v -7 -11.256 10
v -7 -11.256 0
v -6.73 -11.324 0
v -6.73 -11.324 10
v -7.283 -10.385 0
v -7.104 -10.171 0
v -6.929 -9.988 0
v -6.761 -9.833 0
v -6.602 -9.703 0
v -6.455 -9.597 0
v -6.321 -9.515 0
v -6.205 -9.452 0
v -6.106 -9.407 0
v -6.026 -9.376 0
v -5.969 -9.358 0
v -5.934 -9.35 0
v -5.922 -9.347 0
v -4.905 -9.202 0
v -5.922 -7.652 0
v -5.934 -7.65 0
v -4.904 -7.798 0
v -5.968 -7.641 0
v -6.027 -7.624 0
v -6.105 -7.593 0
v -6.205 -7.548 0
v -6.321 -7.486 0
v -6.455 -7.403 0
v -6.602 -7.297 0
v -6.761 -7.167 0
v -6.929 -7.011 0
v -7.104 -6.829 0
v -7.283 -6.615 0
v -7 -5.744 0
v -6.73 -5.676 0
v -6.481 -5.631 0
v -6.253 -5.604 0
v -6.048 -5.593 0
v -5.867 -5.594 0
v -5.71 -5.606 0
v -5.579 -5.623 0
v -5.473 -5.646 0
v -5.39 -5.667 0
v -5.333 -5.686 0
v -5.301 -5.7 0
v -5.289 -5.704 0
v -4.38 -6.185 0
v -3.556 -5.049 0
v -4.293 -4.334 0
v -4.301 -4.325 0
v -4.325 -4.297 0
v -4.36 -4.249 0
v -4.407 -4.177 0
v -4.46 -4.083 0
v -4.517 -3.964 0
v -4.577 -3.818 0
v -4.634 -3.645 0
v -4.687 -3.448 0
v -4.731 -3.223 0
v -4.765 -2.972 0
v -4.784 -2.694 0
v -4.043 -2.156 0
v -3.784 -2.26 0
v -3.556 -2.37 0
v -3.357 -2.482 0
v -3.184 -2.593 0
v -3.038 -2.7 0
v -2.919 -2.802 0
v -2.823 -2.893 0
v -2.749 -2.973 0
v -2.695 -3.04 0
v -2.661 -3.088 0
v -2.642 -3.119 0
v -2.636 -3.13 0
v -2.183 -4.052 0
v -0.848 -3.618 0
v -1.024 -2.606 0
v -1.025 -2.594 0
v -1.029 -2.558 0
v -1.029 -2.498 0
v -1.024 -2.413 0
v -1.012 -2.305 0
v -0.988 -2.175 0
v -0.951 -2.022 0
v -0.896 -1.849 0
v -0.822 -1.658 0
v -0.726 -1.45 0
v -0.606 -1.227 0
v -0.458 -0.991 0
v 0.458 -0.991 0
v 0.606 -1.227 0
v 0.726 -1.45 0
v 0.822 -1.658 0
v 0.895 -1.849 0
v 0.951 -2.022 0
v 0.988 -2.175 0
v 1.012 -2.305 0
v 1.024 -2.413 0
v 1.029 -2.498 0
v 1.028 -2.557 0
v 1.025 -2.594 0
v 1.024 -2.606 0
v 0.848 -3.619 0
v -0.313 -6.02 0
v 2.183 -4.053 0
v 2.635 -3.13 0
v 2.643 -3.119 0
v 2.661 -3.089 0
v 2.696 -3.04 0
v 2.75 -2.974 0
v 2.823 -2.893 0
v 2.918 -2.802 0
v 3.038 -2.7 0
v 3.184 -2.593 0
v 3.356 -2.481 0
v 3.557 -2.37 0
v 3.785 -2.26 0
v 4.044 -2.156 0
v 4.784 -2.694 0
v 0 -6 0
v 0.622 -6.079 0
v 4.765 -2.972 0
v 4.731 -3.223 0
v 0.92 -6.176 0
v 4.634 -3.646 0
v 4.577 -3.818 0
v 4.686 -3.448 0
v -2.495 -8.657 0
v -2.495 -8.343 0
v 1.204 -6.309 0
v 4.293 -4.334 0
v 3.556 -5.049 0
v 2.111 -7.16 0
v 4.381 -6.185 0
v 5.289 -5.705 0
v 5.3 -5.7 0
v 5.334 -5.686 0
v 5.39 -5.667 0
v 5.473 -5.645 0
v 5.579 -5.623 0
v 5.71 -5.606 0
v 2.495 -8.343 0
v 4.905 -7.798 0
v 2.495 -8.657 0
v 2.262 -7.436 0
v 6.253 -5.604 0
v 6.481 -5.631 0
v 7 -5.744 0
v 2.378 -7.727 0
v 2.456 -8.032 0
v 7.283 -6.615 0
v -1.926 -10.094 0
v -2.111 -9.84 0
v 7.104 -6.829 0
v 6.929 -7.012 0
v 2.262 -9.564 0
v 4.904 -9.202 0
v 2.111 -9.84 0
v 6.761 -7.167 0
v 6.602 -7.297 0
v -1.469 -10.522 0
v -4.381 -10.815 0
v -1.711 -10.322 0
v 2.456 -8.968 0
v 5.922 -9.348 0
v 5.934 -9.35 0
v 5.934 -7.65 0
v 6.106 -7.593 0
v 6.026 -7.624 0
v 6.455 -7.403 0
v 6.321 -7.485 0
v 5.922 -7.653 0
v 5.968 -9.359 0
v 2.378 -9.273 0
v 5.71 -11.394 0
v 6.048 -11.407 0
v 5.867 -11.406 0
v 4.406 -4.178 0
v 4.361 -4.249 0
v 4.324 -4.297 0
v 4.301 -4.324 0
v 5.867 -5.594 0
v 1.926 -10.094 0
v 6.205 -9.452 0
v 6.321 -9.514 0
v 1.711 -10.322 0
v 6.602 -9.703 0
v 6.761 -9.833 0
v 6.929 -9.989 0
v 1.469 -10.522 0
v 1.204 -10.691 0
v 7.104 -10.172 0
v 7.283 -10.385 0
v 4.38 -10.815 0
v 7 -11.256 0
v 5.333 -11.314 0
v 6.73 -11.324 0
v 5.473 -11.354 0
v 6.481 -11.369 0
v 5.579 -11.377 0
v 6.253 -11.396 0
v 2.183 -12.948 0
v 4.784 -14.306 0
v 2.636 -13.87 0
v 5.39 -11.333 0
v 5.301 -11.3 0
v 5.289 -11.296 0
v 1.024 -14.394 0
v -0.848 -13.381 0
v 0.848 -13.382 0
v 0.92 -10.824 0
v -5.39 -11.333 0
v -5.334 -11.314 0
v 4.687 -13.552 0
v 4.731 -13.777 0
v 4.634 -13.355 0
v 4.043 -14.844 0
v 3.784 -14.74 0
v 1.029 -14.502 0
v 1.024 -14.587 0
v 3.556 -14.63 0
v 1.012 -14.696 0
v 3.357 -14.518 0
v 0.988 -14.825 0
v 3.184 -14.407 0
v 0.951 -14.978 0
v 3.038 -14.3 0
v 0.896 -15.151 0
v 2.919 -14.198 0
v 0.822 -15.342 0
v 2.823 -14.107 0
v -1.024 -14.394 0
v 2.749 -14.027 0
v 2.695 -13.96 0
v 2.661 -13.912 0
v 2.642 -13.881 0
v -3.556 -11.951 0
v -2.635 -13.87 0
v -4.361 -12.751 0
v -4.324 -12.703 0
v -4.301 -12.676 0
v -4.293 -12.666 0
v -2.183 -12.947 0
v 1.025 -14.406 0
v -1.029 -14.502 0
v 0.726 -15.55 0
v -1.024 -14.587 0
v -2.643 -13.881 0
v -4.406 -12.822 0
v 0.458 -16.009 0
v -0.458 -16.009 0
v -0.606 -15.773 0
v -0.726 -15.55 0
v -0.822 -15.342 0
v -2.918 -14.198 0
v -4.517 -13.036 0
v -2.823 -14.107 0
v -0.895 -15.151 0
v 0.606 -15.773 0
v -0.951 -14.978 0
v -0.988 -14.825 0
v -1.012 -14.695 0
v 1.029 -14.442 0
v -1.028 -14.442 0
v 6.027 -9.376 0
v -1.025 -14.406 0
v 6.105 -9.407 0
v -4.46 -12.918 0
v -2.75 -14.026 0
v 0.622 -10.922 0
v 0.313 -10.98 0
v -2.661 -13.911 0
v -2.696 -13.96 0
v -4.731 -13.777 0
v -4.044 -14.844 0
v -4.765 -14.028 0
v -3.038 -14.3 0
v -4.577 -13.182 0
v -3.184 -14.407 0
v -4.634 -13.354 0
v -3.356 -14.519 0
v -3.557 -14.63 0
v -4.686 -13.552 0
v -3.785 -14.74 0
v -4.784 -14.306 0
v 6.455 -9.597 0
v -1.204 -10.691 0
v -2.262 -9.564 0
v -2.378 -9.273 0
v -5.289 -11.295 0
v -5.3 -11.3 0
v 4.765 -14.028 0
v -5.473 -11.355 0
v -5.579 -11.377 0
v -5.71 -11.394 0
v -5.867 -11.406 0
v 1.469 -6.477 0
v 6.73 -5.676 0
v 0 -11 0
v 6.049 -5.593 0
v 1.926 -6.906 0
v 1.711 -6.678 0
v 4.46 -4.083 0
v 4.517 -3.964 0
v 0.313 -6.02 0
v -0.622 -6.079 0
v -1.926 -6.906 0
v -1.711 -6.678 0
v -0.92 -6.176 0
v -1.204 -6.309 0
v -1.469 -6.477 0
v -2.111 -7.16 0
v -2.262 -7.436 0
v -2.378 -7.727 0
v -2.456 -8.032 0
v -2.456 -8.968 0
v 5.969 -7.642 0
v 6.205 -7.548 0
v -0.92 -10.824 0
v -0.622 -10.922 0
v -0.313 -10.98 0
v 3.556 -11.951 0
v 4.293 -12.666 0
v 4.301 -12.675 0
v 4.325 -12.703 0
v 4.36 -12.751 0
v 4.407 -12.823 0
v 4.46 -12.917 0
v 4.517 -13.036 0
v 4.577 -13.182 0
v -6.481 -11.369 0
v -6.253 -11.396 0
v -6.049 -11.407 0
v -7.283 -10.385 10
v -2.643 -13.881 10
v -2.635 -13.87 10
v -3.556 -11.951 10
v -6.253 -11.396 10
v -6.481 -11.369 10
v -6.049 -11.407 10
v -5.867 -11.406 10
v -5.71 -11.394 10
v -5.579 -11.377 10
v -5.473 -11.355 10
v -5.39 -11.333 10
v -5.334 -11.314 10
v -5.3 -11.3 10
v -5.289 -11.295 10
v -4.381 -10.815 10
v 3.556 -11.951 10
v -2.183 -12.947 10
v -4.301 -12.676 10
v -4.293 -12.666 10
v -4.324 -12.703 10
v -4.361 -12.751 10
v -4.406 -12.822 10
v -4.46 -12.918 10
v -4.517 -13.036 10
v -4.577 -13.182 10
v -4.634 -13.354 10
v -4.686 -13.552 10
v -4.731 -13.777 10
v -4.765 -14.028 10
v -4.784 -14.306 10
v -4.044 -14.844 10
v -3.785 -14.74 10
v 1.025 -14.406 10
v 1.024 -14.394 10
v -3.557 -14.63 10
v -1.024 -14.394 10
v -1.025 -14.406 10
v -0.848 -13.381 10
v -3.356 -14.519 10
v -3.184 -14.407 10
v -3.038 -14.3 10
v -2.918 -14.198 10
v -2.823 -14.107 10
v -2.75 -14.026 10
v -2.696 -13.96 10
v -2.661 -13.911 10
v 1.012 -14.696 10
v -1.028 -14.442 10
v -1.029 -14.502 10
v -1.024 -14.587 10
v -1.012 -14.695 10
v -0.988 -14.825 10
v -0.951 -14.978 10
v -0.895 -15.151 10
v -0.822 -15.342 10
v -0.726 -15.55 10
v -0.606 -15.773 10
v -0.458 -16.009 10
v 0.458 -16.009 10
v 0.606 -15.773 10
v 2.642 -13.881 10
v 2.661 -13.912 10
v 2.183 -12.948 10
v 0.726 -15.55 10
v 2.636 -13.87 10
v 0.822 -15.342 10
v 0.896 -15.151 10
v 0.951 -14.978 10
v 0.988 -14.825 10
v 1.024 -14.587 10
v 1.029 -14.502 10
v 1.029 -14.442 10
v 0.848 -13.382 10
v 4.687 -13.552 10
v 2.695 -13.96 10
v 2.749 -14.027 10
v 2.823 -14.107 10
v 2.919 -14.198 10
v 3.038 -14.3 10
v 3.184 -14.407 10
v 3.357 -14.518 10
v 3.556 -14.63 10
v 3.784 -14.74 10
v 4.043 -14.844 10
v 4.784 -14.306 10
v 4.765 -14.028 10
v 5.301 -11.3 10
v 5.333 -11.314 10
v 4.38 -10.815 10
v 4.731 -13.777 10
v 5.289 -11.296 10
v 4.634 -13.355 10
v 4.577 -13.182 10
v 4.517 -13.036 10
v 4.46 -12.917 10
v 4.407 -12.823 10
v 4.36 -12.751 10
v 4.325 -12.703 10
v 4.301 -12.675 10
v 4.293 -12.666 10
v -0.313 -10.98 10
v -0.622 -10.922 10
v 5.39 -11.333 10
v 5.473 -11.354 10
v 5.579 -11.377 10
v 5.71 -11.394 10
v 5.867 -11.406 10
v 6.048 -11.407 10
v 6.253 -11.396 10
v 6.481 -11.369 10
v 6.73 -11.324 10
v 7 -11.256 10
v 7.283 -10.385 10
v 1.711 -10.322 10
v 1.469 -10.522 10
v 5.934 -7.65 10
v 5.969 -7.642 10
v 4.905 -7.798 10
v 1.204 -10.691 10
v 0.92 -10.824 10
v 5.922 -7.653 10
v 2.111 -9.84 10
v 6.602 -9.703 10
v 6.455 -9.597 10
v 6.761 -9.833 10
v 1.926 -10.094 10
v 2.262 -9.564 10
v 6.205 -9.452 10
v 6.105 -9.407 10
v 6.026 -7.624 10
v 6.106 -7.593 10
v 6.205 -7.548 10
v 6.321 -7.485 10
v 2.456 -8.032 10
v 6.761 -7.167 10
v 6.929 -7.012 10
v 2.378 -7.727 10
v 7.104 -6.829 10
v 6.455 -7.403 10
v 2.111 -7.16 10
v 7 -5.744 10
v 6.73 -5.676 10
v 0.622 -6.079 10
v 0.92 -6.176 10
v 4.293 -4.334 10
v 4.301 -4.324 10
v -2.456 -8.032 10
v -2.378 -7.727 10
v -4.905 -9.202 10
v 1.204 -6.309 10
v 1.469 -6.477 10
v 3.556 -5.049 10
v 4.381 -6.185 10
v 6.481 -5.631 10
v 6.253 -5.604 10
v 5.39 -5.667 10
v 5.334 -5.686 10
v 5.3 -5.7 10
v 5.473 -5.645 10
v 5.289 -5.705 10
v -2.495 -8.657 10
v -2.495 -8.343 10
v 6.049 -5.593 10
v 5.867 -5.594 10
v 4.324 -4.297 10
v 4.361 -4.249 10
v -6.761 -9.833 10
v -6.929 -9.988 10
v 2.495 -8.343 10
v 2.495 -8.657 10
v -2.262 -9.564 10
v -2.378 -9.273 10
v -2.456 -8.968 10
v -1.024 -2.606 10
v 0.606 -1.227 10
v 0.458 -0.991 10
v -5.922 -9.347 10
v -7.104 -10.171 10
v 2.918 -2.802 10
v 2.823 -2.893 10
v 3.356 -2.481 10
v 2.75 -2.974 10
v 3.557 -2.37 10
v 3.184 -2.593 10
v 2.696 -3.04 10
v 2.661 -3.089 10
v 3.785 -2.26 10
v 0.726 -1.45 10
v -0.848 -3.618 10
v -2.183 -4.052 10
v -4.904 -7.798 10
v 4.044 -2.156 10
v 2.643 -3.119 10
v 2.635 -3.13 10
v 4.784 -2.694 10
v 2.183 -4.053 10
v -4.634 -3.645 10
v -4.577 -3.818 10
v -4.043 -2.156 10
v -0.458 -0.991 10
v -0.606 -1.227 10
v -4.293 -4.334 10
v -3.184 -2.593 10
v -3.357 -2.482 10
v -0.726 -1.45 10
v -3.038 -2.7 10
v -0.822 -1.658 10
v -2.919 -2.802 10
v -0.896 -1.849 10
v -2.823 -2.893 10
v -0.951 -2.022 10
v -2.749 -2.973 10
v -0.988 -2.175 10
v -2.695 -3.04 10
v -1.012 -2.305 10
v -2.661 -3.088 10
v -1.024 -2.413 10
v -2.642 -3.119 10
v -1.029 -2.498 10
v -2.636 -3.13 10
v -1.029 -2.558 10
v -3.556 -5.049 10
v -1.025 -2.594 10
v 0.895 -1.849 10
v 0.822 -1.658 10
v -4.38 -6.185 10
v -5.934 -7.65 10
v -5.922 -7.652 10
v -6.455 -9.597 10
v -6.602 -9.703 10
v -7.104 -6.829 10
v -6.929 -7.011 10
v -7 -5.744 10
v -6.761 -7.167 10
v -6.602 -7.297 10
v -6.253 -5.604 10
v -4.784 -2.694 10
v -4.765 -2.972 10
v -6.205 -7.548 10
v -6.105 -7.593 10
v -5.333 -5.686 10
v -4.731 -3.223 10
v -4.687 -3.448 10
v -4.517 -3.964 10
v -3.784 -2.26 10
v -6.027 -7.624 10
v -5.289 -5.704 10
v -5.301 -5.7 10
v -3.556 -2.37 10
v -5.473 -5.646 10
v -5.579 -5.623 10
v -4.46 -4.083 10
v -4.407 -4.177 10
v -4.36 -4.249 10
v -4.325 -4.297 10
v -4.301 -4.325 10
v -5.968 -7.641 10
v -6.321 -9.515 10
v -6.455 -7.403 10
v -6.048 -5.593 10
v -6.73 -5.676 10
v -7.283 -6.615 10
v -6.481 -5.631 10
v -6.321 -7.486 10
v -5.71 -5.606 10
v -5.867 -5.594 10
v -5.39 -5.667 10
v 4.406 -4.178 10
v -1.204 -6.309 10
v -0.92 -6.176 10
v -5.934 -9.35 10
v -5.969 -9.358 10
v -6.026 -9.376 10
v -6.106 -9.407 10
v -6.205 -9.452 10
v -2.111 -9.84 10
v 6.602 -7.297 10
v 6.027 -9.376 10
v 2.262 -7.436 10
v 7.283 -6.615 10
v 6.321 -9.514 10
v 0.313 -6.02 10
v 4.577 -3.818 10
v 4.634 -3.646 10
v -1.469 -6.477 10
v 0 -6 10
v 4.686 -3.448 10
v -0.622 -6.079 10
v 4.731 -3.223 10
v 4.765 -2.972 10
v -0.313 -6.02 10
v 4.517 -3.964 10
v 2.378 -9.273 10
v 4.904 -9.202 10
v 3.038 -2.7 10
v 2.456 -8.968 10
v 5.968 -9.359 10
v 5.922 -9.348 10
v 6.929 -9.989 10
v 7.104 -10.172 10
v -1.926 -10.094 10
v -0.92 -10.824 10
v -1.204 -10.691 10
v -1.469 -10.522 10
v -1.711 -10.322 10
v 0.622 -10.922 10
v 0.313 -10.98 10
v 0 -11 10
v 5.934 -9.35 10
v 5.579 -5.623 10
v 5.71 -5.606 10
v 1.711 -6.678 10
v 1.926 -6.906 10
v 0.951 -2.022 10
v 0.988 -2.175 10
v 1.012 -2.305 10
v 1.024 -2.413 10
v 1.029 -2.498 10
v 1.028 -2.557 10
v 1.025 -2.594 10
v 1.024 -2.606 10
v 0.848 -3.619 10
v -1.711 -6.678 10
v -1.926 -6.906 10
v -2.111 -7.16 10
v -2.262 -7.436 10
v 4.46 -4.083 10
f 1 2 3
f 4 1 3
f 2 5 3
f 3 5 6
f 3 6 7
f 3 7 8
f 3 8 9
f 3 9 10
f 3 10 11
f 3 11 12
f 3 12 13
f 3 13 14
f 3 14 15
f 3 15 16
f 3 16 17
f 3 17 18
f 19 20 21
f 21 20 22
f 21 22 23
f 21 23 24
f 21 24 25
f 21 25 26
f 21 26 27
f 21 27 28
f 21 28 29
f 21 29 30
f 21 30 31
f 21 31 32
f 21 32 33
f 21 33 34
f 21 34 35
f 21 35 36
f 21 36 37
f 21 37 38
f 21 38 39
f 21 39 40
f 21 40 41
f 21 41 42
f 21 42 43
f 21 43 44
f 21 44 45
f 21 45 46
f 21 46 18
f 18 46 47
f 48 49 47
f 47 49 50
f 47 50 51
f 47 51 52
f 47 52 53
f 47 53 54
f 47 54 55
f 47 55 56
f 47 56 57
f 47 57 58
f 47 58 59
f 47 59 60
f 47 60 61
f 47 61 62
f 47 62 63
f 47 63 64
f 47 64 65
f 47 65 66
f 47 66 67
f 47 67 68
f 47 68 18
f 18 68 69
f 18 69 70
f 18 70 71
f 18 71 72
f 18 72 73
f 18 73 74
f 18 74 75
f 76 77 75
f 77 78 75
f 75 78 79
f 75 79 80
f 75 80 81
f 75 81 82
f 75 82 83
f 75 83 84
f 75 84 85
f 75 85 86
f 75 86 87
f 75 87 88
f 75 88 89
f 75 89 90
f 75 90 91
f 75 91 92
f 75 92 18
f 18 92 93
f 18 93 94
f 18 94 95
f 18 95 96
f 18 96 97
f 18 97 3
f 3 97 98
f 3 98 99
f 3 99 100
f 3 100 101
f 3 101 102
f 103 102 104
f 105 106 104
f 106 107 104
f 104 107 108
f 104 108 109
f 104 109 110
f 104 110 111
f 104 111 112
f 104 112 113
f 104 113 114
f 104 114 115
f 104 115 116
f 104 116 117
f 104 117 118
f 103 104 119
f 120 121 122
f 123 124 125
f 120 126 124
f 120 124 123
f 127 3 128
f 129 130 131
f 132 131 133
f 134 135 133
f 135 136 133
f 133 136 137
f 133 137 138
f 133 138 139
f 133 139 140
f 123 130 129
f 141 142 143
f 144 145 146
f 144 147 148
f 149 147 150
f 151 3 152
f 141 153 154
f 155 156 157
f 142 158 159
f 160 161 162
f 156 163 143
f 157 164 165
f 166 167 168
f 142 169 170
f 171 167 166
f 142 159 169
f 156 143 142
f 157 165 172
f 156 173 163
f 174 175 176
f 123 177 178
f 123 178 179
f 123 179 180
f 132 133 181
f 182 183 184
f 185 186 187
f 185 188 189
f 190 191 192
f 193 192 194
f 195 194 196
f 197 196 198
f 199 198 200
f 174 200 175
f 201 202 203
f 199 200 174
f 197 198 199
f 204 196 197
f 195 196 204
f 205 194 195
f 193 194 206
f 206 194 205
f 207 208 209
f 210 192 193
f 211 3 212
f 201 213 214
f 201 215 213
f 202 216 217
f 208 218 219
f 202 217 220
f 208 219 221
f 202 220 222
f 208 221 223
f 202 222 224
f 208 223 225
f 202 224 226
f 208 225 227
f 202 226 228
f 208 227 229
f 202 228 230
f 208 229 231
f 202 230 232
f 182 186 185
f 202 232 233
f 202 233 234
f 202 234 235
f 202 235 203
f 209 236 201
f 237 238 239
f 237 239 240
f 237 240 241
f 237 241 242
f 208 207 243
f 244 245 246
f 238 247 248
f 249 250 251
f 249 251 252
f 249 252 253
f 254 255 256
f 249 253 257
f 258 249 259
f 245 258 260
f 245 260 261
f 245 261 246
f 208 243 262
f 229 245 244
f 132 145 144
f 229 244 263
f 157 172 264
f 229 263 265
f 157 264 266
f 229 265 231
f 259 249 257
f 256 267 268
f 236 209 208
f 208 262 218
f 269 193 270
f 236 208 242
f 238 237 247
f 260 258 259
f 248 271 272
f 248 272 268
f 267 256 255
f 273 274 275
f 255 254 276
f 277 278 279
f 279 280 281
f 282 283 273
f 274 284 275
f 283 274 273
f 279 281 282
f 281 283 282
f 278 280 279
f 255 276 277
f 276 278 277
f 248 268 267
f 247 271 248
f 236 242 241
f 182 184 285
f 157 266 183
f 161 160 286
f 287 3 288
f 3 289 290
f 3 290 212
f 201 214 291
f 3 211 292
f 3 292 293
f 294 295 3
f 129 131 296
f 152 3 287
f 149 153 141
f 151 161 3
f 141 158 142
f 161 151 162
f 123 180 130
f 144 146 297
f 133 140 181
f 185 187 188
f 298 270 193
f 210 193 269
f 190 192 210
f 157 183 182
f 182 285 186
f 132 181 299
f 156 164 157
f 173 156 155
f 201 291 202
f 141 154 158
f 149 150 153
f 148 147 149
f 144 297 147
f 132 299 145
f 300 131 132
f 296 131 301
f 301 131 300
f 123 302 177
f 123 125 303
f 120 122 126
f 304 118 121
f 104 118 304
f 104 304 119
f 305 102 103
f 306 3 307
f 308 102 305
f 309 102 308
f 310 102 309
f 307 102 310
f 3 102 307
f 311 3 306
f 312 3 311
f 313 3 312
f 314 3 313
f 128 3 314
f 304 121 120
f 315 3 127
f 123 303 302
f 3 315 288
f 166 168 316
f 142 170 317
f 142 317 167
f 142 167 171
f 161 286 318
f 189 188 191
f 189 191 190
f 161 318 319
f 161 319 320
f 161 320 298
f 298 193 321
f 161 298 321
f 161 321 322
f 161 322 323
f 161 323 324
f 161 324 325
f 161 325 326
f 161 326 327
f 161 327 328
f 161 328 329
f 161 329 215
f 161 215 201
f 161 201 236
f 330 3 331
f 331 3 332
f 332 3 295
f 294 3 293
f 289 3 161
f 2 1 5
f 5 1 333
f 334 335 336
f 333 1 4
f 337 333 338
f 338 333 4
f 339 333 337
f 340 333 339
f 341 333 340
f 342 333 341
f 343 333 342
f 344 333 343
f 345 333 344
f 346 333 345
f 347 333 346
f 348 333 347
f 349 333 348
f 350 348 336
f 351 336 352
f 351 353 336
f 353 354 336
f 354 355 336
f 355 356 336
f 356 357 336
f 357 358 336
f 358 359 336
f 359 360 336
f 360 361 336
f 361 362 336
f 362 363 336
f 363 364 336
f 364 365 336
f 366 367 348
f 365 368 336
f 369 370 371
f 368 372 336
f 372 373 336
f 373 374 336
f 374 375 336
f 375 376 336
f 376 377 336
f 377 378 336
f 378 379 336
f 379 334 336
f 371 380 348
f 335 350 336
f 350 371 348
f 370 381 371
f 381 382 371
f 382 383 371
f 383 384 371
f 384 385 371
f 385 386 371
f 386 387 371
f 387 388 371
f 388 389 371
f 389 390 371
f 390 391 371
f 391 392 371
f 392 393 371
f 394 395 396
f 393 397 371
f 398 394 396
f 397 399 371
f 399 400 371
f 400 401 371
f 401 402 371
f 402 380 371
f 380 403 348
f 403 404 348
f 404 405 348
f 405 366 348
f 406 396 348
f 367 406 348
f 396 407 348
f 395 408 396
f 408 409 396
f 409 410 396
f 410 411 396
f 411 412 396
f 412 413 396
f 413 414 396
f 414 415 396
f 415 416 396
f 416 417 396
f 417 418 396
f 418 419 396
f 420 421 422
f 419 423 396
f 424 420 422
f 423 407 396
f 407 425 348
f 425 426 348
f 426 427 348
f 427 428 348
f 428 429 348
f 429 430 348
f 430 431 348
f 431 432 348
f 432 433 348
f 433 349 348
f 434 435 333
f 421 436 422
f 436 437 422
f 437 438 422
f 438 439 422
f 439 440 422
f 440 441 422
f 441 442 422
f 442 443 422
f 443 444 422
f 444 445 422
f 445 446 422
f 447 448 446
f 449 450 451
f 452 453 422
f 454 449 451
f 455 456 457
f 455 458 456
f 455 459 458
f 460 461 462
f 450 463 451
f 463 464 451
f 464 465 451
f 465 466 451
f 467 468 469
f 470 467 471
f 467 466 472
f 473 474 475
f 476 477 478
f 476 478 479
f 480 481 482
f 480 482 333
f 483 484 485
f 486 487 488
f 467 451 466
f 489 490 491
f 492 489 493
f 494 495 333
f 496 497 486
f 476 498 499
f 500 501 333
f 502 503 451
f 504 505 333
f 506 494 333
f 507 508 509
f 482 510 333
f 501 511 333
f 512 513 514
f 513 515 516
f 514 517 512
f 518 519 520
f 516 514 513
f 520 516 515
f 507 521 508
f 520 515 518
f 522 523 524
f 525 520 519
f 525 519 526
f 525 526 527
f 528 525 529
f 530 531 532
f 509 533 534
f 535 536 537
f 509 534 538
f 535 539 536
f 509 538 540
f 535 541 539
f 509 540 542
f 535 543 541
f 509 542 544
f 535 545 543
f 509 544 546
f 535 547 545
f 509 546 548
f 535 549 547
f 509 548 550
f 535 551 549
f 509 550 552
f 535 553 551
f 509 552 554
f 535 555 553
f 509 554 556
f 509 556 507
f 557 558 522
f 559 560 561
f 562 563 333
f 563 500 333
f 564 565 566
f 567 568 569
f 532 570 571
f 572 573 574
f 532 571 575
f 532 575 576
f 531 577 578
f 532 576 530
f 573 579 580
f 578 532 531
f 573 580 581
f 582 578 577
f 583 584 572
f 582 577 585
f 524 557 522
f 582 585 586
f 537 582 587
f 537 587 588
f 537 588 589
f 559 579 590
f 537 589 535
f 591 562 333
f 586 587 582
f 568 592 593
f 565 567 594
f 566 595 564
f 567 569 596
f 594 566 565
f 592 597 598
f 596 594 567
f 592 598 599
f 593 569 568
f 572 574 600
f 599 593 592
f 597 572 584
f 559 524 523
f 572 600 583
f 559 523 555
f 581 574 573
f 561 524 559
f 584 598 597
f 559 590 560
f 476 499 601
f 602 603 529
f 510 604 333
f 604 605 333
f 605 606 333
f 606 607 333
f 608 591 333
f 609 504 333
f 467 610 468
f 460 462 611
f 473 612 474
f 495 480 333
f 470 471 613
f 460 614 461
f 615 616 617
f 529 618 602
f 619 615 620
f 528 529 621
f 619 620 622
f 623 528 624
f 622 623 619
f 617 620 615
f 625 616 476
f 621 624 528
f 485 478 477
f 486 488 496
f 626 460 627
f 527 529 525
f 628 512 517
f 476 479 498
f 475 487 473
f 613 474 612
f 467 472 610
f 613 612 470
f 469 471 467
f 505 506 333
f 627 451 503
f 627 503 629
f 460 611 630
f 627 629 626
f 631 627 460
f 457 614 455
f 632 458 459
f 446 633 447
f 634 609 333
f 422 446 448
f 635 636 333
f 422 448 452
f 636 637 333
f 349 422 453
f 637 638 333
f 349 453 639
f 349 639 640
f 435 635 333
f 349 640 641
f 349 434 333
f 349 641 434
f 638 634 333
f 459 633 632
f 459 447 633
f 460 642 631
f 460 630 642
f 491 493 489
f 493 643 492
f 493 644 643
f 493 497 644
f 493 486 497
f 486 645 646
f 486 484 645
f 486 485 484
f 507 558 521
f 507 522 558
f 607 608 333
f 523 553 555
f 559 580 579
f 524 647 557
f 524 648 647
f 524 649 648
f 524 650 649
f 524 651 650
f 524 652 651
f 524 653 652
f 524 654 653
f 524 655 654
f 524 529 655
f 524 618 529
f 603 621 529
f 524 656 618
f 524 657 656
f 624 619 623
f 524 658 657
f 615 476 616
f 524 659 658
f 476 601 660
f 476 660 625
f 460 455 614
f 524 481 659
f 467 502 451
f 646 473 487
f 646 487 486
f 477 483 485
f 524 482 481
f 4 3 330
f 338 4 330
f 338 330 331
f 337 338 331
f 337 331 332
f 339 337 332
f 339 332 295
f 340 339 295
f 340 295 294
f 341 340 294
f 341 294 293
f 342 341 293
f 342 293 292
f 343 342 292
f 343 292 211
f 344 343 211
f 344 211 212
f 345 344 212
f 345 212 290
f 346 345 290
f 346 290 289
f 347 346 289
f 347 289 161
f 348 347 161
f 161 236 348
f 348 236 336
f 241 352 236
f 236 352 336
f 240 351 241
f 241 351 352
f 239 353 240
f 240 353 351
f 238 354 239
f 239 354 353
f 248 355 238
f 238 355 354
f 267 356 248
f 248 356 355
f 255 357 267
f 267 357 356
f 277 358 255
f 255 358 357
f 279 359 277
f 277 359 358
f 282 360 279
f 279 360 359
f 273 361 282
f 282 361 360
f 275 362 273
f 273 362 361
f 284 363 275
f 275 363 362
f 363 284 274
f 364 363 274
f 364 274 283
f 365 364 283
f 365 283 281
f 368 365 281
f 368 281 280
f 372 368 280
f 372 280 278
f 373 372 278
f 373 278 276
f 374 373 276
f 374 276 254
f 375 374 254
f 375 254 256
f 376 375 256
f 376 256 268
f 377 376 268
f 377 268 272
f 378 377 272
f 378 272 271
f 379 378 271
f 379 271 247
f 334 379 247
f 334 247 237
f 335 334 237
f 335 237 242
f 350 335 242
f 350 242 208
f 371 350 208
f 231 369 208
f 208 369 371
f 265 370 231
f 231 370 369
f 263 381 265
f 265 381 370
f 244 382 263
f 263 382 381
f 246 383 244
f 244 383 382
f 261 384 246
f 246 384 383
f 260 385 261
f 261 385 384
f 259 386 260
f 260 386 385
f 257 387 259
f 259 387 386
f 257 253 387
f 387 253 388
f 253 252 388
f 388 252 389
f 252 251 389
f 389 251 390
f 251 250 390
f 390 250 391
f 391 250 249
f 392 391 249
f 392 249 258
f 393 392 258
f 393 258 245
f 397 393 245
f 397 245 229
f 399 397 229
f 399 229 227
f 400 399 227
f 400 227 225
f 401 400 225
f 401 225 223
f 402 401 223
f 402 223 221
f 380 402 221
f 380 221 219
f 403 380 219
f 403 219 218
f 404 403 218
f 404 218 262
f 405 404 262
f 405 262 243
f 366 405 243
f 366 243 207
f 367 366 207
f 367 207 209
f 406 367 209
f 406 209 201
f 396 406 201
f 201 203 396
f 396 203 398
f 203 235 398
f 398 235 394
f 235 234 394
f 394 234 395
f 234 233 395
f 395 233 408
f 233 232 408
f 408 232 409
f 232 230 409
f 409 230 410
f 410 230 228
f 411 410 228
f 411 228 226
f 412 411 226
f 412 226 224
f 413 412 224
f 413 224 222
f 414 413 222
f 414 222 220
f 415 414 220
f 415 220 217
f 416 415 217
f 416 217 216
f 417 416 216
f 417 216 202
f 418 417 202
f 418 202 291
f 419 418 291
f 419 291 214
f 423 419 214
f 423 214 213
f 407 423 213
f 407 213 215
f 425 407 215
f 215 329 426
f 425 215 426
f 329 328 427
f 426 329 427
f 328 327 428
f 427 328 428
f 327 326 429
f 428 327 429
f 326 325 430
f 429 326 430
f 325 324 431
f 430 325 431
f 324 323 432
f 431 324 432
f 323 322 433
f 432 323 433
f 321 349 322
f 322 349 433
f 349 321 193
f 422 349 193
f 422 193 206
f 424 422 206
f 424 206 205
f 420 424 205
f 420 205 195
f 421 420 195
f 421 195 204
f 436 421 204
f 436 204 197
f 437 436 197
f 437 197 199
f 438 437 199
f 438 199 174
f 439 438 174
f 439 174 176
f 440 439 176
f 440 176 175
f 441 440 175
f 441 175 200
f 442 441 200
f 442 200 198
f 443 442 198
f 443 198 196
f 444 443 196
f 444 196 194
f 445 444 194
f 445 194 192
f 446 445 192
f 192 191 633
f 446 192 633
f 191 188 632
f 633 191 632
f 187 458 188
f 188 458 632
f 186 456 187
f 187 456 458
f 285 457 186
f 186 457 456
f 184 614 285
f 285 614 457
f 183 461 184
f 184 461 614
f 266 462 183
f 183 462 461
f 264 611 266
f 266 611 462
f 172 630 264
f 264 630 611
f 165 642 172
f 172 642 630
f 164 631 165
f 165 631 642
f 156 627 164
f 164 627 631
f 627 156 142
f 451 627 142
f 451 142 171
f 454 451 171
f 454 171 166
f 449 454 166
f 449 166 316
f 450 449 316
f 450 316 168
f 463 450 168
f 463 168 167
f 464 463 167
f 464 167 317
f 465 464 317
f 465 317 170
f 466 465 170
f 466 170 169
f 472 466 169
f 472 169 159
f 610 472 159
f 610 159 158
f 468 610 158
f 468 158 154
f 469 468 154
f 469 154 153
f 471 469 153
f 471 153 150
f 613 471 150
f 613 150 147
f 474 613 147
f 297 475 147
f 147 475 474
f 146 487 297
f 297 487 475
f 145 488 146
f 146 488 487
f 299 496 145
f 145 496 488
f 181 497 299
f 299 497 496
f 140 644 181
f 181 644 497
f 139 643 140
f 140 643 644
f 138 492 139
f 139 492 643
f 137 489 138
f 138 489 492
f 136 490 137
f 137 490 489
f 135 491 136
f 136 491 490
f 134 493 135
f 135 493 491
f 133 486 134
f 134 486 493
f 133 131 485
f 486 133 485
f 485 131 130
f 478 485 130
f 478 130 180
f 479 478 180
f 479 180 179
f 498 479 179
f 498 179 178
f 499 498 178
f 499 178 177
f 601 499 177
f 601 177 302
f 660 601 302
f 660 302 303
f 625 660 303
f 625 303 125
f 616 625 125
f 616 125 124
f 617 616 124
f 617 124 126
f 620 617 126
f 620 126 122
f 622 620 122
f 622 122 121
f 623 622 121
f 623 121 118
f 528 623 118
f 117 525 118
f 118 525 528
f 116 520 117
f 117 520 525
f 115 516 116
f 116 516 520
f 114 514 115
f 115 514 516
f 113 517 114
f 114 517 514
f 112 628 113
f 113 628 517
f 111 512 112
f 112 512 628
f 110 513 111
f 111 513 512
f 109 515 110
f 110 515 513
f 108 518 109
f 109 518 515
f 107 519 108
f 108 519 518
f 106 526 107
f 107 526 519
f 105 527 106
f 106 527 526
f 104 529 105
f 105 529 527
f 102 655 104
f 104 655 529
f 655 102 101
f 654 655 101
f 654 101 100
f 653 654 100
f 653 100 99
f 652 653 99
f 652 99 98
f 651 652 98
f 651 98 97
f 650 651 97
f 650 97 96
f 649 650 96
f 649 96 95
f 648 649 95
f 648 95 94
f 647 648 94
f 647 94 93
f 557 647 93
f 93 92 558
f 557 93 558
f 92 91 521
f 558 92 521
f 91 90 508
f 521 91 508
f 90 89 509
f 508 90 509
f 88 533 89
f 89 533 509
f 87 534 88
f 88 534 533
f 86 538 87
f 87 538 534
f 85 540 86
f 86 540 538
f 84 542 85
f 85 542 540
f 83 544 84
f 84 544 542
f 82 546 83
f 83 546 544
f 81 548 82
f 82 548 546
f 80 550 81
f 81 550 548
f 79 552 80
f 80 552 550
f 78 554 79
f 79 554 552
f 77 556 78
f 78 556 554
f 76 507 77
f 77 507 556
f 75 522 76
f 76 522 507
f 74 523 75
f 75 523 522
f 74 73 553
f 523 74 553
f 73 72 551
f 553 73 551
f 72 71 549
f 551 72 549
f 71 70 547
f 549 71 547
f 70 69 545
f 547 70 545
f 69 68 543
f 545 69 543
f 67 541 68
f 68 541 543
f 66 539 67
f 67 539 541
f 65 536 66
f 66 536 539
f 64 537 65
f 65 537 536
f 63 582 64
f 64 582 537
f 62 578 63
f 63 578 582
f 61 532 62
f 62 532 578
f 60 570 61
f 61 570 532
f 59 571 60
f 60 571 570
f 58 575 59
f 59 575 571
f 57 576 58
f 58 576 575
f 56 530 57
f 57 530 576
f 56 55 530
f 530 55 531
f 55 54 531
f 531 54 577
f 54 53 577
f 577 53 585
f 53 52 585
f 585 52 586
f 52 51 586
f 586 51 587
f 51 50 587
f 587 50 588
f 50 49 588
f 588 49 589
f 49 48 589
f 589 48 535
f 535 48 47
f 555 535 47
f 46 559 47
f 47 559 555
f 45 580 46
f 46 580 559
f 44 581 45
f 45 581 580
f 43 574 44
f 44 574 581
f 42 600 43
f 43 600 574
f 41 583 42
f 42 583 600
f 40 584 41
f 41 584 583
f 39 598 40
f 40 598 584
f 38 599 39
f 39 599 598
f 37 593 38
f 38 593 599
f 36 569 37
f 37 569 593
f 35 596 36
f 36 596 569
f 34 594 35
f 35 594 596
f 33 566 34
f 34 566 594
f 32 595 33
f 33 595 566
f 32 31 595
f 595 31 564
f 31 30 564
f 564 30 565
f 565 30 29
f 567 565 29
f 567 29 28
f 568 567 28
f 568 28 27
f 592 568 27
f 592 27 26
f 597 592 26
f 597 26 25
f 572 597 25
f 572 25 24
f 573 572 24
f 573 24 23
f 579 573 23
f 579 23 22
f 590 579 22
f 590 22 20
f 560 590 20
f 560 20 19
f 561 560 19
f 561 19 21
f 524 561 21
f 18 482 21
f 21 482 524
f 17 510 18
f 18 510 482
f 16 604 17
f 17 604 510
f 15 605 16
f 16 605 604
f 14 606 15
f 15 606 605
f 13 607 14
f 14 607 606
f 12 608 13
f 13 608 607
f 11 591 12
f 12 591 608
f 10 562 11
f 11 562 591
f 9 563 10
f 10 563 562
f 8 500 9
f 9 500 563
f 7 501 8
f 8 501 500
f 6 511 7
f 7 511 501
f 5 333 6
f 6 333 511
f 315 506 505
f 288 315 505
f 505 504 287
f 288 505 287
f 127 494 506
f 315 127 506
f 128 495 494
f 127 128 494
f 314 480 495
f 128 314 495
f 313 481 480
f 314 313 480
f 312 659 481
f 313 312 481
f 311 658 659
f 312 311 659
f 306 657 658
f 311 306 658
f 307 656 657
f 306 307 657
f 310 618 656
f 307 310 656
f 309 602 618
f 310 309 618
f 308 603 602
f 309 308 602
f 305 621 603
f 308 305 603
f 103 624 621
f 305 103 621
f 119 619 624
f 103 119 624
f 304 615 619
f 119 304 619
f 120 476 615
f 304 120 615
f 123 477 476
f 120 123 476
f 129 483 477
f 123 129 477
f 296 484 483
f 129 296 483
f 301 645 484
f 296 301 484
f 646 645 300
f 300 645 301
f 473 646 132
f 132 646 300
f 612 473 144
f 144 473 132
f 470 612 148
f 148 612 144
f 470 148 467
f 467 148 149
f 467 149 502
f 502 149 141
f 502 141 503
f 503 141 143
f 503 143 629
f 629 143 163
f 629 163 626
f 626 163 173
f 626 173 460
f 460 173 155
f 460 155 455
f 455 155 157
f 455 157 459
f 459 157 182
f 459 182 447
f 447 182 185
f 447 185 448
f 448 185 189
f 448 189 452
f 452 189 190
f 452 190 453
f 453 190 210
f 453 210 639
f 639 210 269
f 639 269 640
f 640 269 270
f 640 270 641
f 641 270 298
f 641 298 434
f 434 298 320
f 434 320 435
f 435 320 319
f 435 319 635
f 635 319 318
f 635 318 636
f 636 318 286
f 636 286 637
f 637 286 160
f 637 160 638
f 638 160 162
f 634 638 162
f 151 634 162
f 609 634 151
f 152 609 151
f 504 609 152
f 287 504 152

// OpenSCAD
// file: rack_and_pinion.scad
// http://www.thingiverse.com/thing:1227374
// Customizable rack and pinion by rushman is licensed under the Creative Commons - Attribution license.
// by rushman, published Dec 26, 2015

use <MCAD/involute_gears.scad>

height = 4;

circular_pitch=180;
number_of_pinion_teeth=16; // [12:1:200]
pressure_angle = 28;

spacing_between_objects = 0; // [0:real, 5:apart]

function pitch_radius(number_of_teeth, circular_pitch) = (number_of_teeth * circular_pitch / 180) / 2;

function linear_tooth_size(number_of_teeth, circular_pitch) = 
    2*sin(360/number_of_teeth/2)*pitch_radius(number_of_teeth, circular_pitch);


module rack(circular_pitch, number_of_pinion_teeth, number_of_rack_teeth, height,
pressure_angle=28,
clearance=0.2) 

{
    pitch_diameter  =  number_of_pinion_teeth * circular_pitch / 180;
    pitch_radius = pitch_diameter/2;

    base_radius = pitch_radius*cos(pressure_angle);

    // Diametrial pitch: Number of teeth per unit length.
    pitch_diametrial = number_of_pinion_teeth / pitch_diameter;

    // Addendum: Radial distance from pitch circle to outside circle.
    addendum = 1/pitch_diametrial;

    //Outer Circle
    outer_radius = pitch_radius+addendum;

    // Dedendum: Radial distance from pitch circle to root diameter
    dedendum = addendum + clearance;

    root_radius = pitch_radius-dedendum;
    half_thick_angle = (360 / number_of_pinion_teeth) / 4;

    echo("pitch_radius", pitch_radius);
    echo("outer_radius", outer_radius);
    echo("pitch_diametrial", pitch_diametrial);
    echo("addendum", addendum);
    echo("dedendum", dedendum);

    O = 360/number_of_pinion_teeth;
    th=2*sin(O/2)*pitch_radius;
    rack_teeth=number_of_rack_teeth;
    echo("tooth_length", th);
    echo("rack_length", th*rack_teeth);

    union() {
        for (i=[0:rack_teeth]) {
            translate([0,i*th,0])
            linear_extrude(height)
            involute_gear_tooth(
                pitch_radius=pitch_radius,
                root_radius=root_radius,
                base_radius=base_radius,
                outer_radius=outer_radius,
                half_thick_angle=half_thick_angle,
                involute_facets=0);
        }
        cube([root_radius,th*rack_teeth, height]);
    }
}    


module pinion(circular_pitch, number_of_teeth, height, pressure_angle=28, clearance=0.2) {
    rotate([0,0,(number_of_teeth % 2 == 0) ? 180/number_of_teeth:0])
    gear(number_of_teeth=number_of_teeth,
            circular_pitch=circular_pitch,
            pressure_angle=pressure_angle,
            clearance = clearance,
            gear_thickness=height,
            rim_thickness=height,
            rim_width=5,
            hub_thickness=4,
            hub_diameter=4,
            bore_diameter=5,
            circles=0,
            backlash=0,
            twist=0,
            involute_facets=0,
            flat=false);
    
}

anim_phase = $t > 0.5 ? (1-$t) : $t;

th = linear_tooth_size(number_of_pinion_teeth, circular_pitch);

num_rack_teeth=ceil(number_of_pinion_teeth)/2;
translate([0,-th*number_of_pinion_teeth*anim_phase,0])
rack(circular_pitch, number_of_pinion_teeth, num_rack_teeth, height, pressure_angle);

translate([spacing_between_objects, 0, 0])
translate([pitch_radius(number_of_pinion_teeth, circular_pitch)*2,0,0])   
    rotate([0,0,anim_phase*360]) {
        color([0.3, 0.5, 0.8])
        pinion(circular_pitch, number_of_pinion_teeth, height, pressure_angle);
        
    }
$fs=0.5;


//ma=15;
//d=18;
//echo(cos(ma)*d);
// main file
// Rack and pinion gears GPL (c) SASA October 2013.
//
// Very simple rack and pinion gear based on GPL code.
//
// I've made corrections to both rack and gear code I used (below) and unified
// and simplified both bits of code.  Corrects the use of circular pitch so
// rack and pinion match nicely.  Ammendments to the code and interface to
// simplify use and improve readability. Many bells and whistles dropped in
// favour of being dead simple.  I also opted for hard wiring the pressure
// angle to 20 degrees since this seemed a kind of standard.
//
// Based on the works (thanks!): Parametric Involute Bevel and Spur Gears by
// GregFrost GNU GPL license.  http://www.thingiverse.com/thing:3575 Parametric
// Modular Rack by Mark "Ckaos" Moissette GNU GPL license.  (Rack based on the
// work of MattMoses and Fdavies
// http://forums.reprap.org/read.php?1,51452,52099#msg-52099 and Forrest Higgs:
// 
// The originals have many fine additions such as helical gears which I've
// dropped in favour of simplicity (as befits my needs) - it wouldn't be a big
// jobs to nobble my changes backwards or their features forwards.

pi=3.1415926535897932384626433832795;
$fn=50;

// examples of usage
// include this in your code:
use <rack_and_pinion.scad>
// then:
// a simple rack
//rack(4,40,10,5);//CP (mm/tooth), width (mm), thickness(of base) (mm), # teeth
// a simple pinion and translation / rotation to make it mesh the rack
translate([0,-8.5,0])rotate([0,0,360/10/2]) pinion(4,10,10,5);





module rack(cp, N, width, thickness){
// cp = circular pitch - for rack = pitch in mm/per tooth
// N = number of teeth
// width = width of rack
// thickness = thickness of support under teeth (0 for no support)

	a = 1.0*cp/pi; // addendum (also known as "module")
	d = 1.1*cp/pi; // dedendum (this is set by a standard)
	height=(d+a);

	// find the tangent of pressure angle once
	tanPA = tan(20);
	// length of bottom and top horizontal segments of tooth profile
	botL = (cp/2 - 2*d*tanPA);
	topL = (cp/2 - 2*a*tanPA);

	slantLng=tanPA*height;
	realBase=2*slantLng+topL;

	offset=topL+botL+2*slantLng;
	length=(realBase+botL)*N;

	supportSize=width;
	translate([botL/2,0,0])
	rotate([90,0,0]){
		translate([0,supportSize/2,0]){
			union(){
				cube(size=[length,width,thickness],center=true);
				for (i = [0:N-1]){
					translate([i*offset-length/2+realBase/2,0,thickness/2]){
						trapezoid([topL,supportSize],[realBase,supportSize],height);
						}
					}
				}
			}
		}
	}

module pinion (cp, N, width, shaft_diameter, backlash=0){
// cp= circular pitch - for pinion pitch in mm/per as measured along the ptich radius (~1/2 way up tooth)
// N= number of teeth
// width= width of the gear
// shaft_diameter= diameter of hole for shaft
// backlash - I think this is just a bodge for making things fit when printed but I never tested it

	if (cp==false && diametral_pitch==false) 
		echo("MCAD ERROR: pinion module needs either a diametral_pitch or cp");

	//Convert diametrial pitch to our native circular pitch
	cp = (cp!=false?cp:180/diametral_pitch);

	// Pitch diameter: Diameter of pitch circle.
	pitch_diameter  =  N * cp / pi;
	pitch_radius = pitch_diameter/2;
	echo ("Teeth:", N, " Pitch radius:", pitch_radius);
	// Base Circle
	base_radius = pitch_radius*cos(20);

	// Addendum: Radial distance from pitch circle to outside circle.
	addendum = cp/pi;

	//Outer Circle
	outer_radius = pitch_radius+addendum;

	// Dedendum: Radial distance from pitch circle to root diameter
	dedendum = addendum*1.1;

	// Root diameter: Diameter of bottom of tooth spaces.
	root_radius = pitch_radius-dedendum;

	backlash_angle = backlash / pitch_radius * 180 / pi;
	half_thick_angle = (360 / N - backlash_angle) / 4;

	difference(){
		linear_extrude (height=width, convexity=10, twist=0)
		pinion_shape(N, pitch_radius = pitch_radius, root_radius = root_radius,
			base_radius = base_radius, outer_radius = outer_radius,
			half_thick_angle = half_thick_angle, involute_facets=0);

		translate([0,0,-1]) cylinder(r=shaft_diameter/2,h=2+width);
		}

	echo("Root radius =",root_radius,"\nPitch radius=",pitch_radius,"\n Tip radius=",outer_radius,"\n");
	}

module pinion_shape ( N, pitch_radius, root_radius, base_radius, outer_radius, half_thick_angle, involute_facets) {
	union(){
		rotate (half_thick_angle) circle ($fn=N*2, r=root_radius);
		for (i = [1:N]) {
			rotate ([0,0,i*360/N]) {
				involute_pinion_tooth (
					pitch_radius = pitch_radius,
					root_radius = root_radius,
					base_radius = base_radius,
					outer_radius = outer_radius,
					half_thick_angle = half_thick_angle,
					involute_facets=involute_facets);
				}
			}
		}
	}

module involute_pinion_tooth ( pitch_radius, root_radius, base_radius, outer_radius, half_thick_angle, involute_facets) {
	min_radius = max (base_radius,root_radius);

	pitch_point = involute (base_radius, involute_intersect_angle (base_radius, pitch_radius));
	pitch_angle = atan2 (pitch_point[1], pitch_point[0]);
	centre_angle = pitch_angle + half_thick_angle;

	start_angle = involute_intersect_angle (base_radius, min_radius);
	stop_angle = involute_intersect_angle (base_radius, outer_radius);

	res=(involute_facets!=0)?involute_facets:($fn==0)?5:$fn/4;

	union () {
		for (i=[1:res])
		assign ( point1=involute (base_radius,start_angle+(stop_angle - start_angle)*(i-1)/res), point2=involute (base_radius,start_angle+(stop_angle - start_angle)*i/res)) {
			assign (
				side1_point1=rotate_point (centre_angle, point1),
				side1_point2=rotate_point (centre_angle, point2),
				side2_point1=mirror_point (rotate_point (centre_angle, point1)),
				side2_point2=mirror_point (rotate_point (centre_angle, point2))) {
				polygon ( points=[[0,0],side1_point1,side1_point2,side2_point2,side2_point1], paths=[[0,1,2,3,4,0]]);
				}
			}
		}
	}

// Mathematical Functions
//===============

// Finds the angle of the involute about the base radius at the given distance (radius) from it's center.
//source: http://www.mathhelpforum.com/math-help/geometry/136011-circle-involute-solving-y-any-given-x.html

function involute_intersect_angle (base_radius, radius) = sqrt (pow (radius/base_radius, 2) - 1) * 180 / pi;

// Calculate the involute position for a given base radius and involute angle.

function rotated_involute(rotate,base_radius,involute_angle)=[cos(rotate)*involute(base_radius, involute_angle)[0]+sin(rotate)*involute(base_radius, involute_angle)[1],cos(rotate)*involute(base_radius, involute_angle)[1]-sin(rotate)*involute(base_radius, involute_angle)[0]];

function mirror_point(coord)=[coord[0],-coord[1]];

function rotate_point(rotate,coord)=[cos(rotate)*coord[0]+sin(rotate)*coord[1],cos(rotate)*coord[1]-sin(rotate)*coord[0]];

function involute (base_radius, involute_angle)=[base_radius*(cos(involute_angle)+involute_angle*pi/180*sin(involute_angle)),base_radius*(sin(involute_angle)-involute_angle*pi/180*cos(involute_angle))];




module trapezoid(top,base,height){
	//echo ("test",base[0]);
	basePT1=[ -base[0]/2, base[1]/2, 0];
	basePT2=[ base[0]/2, base[1]/2, 0];
	basePT3=[ base[0]/2, -base[1]/2, 0];
	basePT4=[ -base[0]/2, -base[1]/2, 0];
	topPT1=[ -top[0]/2, top[1]/2, height];
	topPT2=[ top[0]/2, top[1]/2, height];
	topPT3=[ top[0]/2, -top[1]/2, height];
	topPT4=[ -top[0]/2, -top[1]/2, height];
	polyhedron(points=[ basePT1, basePT2, basePT3, basePT4, topPT1, topPT2, topPT3, topPT4],triangles=[[0,1,2], [0,2,3],[3,7,0], [7,4,0],[1,6,2], [1,5,6],[2,6,3], [3,6,7],[5,1,0],[4,5,0],[7,5,4],[5,7,6]]);
	}
